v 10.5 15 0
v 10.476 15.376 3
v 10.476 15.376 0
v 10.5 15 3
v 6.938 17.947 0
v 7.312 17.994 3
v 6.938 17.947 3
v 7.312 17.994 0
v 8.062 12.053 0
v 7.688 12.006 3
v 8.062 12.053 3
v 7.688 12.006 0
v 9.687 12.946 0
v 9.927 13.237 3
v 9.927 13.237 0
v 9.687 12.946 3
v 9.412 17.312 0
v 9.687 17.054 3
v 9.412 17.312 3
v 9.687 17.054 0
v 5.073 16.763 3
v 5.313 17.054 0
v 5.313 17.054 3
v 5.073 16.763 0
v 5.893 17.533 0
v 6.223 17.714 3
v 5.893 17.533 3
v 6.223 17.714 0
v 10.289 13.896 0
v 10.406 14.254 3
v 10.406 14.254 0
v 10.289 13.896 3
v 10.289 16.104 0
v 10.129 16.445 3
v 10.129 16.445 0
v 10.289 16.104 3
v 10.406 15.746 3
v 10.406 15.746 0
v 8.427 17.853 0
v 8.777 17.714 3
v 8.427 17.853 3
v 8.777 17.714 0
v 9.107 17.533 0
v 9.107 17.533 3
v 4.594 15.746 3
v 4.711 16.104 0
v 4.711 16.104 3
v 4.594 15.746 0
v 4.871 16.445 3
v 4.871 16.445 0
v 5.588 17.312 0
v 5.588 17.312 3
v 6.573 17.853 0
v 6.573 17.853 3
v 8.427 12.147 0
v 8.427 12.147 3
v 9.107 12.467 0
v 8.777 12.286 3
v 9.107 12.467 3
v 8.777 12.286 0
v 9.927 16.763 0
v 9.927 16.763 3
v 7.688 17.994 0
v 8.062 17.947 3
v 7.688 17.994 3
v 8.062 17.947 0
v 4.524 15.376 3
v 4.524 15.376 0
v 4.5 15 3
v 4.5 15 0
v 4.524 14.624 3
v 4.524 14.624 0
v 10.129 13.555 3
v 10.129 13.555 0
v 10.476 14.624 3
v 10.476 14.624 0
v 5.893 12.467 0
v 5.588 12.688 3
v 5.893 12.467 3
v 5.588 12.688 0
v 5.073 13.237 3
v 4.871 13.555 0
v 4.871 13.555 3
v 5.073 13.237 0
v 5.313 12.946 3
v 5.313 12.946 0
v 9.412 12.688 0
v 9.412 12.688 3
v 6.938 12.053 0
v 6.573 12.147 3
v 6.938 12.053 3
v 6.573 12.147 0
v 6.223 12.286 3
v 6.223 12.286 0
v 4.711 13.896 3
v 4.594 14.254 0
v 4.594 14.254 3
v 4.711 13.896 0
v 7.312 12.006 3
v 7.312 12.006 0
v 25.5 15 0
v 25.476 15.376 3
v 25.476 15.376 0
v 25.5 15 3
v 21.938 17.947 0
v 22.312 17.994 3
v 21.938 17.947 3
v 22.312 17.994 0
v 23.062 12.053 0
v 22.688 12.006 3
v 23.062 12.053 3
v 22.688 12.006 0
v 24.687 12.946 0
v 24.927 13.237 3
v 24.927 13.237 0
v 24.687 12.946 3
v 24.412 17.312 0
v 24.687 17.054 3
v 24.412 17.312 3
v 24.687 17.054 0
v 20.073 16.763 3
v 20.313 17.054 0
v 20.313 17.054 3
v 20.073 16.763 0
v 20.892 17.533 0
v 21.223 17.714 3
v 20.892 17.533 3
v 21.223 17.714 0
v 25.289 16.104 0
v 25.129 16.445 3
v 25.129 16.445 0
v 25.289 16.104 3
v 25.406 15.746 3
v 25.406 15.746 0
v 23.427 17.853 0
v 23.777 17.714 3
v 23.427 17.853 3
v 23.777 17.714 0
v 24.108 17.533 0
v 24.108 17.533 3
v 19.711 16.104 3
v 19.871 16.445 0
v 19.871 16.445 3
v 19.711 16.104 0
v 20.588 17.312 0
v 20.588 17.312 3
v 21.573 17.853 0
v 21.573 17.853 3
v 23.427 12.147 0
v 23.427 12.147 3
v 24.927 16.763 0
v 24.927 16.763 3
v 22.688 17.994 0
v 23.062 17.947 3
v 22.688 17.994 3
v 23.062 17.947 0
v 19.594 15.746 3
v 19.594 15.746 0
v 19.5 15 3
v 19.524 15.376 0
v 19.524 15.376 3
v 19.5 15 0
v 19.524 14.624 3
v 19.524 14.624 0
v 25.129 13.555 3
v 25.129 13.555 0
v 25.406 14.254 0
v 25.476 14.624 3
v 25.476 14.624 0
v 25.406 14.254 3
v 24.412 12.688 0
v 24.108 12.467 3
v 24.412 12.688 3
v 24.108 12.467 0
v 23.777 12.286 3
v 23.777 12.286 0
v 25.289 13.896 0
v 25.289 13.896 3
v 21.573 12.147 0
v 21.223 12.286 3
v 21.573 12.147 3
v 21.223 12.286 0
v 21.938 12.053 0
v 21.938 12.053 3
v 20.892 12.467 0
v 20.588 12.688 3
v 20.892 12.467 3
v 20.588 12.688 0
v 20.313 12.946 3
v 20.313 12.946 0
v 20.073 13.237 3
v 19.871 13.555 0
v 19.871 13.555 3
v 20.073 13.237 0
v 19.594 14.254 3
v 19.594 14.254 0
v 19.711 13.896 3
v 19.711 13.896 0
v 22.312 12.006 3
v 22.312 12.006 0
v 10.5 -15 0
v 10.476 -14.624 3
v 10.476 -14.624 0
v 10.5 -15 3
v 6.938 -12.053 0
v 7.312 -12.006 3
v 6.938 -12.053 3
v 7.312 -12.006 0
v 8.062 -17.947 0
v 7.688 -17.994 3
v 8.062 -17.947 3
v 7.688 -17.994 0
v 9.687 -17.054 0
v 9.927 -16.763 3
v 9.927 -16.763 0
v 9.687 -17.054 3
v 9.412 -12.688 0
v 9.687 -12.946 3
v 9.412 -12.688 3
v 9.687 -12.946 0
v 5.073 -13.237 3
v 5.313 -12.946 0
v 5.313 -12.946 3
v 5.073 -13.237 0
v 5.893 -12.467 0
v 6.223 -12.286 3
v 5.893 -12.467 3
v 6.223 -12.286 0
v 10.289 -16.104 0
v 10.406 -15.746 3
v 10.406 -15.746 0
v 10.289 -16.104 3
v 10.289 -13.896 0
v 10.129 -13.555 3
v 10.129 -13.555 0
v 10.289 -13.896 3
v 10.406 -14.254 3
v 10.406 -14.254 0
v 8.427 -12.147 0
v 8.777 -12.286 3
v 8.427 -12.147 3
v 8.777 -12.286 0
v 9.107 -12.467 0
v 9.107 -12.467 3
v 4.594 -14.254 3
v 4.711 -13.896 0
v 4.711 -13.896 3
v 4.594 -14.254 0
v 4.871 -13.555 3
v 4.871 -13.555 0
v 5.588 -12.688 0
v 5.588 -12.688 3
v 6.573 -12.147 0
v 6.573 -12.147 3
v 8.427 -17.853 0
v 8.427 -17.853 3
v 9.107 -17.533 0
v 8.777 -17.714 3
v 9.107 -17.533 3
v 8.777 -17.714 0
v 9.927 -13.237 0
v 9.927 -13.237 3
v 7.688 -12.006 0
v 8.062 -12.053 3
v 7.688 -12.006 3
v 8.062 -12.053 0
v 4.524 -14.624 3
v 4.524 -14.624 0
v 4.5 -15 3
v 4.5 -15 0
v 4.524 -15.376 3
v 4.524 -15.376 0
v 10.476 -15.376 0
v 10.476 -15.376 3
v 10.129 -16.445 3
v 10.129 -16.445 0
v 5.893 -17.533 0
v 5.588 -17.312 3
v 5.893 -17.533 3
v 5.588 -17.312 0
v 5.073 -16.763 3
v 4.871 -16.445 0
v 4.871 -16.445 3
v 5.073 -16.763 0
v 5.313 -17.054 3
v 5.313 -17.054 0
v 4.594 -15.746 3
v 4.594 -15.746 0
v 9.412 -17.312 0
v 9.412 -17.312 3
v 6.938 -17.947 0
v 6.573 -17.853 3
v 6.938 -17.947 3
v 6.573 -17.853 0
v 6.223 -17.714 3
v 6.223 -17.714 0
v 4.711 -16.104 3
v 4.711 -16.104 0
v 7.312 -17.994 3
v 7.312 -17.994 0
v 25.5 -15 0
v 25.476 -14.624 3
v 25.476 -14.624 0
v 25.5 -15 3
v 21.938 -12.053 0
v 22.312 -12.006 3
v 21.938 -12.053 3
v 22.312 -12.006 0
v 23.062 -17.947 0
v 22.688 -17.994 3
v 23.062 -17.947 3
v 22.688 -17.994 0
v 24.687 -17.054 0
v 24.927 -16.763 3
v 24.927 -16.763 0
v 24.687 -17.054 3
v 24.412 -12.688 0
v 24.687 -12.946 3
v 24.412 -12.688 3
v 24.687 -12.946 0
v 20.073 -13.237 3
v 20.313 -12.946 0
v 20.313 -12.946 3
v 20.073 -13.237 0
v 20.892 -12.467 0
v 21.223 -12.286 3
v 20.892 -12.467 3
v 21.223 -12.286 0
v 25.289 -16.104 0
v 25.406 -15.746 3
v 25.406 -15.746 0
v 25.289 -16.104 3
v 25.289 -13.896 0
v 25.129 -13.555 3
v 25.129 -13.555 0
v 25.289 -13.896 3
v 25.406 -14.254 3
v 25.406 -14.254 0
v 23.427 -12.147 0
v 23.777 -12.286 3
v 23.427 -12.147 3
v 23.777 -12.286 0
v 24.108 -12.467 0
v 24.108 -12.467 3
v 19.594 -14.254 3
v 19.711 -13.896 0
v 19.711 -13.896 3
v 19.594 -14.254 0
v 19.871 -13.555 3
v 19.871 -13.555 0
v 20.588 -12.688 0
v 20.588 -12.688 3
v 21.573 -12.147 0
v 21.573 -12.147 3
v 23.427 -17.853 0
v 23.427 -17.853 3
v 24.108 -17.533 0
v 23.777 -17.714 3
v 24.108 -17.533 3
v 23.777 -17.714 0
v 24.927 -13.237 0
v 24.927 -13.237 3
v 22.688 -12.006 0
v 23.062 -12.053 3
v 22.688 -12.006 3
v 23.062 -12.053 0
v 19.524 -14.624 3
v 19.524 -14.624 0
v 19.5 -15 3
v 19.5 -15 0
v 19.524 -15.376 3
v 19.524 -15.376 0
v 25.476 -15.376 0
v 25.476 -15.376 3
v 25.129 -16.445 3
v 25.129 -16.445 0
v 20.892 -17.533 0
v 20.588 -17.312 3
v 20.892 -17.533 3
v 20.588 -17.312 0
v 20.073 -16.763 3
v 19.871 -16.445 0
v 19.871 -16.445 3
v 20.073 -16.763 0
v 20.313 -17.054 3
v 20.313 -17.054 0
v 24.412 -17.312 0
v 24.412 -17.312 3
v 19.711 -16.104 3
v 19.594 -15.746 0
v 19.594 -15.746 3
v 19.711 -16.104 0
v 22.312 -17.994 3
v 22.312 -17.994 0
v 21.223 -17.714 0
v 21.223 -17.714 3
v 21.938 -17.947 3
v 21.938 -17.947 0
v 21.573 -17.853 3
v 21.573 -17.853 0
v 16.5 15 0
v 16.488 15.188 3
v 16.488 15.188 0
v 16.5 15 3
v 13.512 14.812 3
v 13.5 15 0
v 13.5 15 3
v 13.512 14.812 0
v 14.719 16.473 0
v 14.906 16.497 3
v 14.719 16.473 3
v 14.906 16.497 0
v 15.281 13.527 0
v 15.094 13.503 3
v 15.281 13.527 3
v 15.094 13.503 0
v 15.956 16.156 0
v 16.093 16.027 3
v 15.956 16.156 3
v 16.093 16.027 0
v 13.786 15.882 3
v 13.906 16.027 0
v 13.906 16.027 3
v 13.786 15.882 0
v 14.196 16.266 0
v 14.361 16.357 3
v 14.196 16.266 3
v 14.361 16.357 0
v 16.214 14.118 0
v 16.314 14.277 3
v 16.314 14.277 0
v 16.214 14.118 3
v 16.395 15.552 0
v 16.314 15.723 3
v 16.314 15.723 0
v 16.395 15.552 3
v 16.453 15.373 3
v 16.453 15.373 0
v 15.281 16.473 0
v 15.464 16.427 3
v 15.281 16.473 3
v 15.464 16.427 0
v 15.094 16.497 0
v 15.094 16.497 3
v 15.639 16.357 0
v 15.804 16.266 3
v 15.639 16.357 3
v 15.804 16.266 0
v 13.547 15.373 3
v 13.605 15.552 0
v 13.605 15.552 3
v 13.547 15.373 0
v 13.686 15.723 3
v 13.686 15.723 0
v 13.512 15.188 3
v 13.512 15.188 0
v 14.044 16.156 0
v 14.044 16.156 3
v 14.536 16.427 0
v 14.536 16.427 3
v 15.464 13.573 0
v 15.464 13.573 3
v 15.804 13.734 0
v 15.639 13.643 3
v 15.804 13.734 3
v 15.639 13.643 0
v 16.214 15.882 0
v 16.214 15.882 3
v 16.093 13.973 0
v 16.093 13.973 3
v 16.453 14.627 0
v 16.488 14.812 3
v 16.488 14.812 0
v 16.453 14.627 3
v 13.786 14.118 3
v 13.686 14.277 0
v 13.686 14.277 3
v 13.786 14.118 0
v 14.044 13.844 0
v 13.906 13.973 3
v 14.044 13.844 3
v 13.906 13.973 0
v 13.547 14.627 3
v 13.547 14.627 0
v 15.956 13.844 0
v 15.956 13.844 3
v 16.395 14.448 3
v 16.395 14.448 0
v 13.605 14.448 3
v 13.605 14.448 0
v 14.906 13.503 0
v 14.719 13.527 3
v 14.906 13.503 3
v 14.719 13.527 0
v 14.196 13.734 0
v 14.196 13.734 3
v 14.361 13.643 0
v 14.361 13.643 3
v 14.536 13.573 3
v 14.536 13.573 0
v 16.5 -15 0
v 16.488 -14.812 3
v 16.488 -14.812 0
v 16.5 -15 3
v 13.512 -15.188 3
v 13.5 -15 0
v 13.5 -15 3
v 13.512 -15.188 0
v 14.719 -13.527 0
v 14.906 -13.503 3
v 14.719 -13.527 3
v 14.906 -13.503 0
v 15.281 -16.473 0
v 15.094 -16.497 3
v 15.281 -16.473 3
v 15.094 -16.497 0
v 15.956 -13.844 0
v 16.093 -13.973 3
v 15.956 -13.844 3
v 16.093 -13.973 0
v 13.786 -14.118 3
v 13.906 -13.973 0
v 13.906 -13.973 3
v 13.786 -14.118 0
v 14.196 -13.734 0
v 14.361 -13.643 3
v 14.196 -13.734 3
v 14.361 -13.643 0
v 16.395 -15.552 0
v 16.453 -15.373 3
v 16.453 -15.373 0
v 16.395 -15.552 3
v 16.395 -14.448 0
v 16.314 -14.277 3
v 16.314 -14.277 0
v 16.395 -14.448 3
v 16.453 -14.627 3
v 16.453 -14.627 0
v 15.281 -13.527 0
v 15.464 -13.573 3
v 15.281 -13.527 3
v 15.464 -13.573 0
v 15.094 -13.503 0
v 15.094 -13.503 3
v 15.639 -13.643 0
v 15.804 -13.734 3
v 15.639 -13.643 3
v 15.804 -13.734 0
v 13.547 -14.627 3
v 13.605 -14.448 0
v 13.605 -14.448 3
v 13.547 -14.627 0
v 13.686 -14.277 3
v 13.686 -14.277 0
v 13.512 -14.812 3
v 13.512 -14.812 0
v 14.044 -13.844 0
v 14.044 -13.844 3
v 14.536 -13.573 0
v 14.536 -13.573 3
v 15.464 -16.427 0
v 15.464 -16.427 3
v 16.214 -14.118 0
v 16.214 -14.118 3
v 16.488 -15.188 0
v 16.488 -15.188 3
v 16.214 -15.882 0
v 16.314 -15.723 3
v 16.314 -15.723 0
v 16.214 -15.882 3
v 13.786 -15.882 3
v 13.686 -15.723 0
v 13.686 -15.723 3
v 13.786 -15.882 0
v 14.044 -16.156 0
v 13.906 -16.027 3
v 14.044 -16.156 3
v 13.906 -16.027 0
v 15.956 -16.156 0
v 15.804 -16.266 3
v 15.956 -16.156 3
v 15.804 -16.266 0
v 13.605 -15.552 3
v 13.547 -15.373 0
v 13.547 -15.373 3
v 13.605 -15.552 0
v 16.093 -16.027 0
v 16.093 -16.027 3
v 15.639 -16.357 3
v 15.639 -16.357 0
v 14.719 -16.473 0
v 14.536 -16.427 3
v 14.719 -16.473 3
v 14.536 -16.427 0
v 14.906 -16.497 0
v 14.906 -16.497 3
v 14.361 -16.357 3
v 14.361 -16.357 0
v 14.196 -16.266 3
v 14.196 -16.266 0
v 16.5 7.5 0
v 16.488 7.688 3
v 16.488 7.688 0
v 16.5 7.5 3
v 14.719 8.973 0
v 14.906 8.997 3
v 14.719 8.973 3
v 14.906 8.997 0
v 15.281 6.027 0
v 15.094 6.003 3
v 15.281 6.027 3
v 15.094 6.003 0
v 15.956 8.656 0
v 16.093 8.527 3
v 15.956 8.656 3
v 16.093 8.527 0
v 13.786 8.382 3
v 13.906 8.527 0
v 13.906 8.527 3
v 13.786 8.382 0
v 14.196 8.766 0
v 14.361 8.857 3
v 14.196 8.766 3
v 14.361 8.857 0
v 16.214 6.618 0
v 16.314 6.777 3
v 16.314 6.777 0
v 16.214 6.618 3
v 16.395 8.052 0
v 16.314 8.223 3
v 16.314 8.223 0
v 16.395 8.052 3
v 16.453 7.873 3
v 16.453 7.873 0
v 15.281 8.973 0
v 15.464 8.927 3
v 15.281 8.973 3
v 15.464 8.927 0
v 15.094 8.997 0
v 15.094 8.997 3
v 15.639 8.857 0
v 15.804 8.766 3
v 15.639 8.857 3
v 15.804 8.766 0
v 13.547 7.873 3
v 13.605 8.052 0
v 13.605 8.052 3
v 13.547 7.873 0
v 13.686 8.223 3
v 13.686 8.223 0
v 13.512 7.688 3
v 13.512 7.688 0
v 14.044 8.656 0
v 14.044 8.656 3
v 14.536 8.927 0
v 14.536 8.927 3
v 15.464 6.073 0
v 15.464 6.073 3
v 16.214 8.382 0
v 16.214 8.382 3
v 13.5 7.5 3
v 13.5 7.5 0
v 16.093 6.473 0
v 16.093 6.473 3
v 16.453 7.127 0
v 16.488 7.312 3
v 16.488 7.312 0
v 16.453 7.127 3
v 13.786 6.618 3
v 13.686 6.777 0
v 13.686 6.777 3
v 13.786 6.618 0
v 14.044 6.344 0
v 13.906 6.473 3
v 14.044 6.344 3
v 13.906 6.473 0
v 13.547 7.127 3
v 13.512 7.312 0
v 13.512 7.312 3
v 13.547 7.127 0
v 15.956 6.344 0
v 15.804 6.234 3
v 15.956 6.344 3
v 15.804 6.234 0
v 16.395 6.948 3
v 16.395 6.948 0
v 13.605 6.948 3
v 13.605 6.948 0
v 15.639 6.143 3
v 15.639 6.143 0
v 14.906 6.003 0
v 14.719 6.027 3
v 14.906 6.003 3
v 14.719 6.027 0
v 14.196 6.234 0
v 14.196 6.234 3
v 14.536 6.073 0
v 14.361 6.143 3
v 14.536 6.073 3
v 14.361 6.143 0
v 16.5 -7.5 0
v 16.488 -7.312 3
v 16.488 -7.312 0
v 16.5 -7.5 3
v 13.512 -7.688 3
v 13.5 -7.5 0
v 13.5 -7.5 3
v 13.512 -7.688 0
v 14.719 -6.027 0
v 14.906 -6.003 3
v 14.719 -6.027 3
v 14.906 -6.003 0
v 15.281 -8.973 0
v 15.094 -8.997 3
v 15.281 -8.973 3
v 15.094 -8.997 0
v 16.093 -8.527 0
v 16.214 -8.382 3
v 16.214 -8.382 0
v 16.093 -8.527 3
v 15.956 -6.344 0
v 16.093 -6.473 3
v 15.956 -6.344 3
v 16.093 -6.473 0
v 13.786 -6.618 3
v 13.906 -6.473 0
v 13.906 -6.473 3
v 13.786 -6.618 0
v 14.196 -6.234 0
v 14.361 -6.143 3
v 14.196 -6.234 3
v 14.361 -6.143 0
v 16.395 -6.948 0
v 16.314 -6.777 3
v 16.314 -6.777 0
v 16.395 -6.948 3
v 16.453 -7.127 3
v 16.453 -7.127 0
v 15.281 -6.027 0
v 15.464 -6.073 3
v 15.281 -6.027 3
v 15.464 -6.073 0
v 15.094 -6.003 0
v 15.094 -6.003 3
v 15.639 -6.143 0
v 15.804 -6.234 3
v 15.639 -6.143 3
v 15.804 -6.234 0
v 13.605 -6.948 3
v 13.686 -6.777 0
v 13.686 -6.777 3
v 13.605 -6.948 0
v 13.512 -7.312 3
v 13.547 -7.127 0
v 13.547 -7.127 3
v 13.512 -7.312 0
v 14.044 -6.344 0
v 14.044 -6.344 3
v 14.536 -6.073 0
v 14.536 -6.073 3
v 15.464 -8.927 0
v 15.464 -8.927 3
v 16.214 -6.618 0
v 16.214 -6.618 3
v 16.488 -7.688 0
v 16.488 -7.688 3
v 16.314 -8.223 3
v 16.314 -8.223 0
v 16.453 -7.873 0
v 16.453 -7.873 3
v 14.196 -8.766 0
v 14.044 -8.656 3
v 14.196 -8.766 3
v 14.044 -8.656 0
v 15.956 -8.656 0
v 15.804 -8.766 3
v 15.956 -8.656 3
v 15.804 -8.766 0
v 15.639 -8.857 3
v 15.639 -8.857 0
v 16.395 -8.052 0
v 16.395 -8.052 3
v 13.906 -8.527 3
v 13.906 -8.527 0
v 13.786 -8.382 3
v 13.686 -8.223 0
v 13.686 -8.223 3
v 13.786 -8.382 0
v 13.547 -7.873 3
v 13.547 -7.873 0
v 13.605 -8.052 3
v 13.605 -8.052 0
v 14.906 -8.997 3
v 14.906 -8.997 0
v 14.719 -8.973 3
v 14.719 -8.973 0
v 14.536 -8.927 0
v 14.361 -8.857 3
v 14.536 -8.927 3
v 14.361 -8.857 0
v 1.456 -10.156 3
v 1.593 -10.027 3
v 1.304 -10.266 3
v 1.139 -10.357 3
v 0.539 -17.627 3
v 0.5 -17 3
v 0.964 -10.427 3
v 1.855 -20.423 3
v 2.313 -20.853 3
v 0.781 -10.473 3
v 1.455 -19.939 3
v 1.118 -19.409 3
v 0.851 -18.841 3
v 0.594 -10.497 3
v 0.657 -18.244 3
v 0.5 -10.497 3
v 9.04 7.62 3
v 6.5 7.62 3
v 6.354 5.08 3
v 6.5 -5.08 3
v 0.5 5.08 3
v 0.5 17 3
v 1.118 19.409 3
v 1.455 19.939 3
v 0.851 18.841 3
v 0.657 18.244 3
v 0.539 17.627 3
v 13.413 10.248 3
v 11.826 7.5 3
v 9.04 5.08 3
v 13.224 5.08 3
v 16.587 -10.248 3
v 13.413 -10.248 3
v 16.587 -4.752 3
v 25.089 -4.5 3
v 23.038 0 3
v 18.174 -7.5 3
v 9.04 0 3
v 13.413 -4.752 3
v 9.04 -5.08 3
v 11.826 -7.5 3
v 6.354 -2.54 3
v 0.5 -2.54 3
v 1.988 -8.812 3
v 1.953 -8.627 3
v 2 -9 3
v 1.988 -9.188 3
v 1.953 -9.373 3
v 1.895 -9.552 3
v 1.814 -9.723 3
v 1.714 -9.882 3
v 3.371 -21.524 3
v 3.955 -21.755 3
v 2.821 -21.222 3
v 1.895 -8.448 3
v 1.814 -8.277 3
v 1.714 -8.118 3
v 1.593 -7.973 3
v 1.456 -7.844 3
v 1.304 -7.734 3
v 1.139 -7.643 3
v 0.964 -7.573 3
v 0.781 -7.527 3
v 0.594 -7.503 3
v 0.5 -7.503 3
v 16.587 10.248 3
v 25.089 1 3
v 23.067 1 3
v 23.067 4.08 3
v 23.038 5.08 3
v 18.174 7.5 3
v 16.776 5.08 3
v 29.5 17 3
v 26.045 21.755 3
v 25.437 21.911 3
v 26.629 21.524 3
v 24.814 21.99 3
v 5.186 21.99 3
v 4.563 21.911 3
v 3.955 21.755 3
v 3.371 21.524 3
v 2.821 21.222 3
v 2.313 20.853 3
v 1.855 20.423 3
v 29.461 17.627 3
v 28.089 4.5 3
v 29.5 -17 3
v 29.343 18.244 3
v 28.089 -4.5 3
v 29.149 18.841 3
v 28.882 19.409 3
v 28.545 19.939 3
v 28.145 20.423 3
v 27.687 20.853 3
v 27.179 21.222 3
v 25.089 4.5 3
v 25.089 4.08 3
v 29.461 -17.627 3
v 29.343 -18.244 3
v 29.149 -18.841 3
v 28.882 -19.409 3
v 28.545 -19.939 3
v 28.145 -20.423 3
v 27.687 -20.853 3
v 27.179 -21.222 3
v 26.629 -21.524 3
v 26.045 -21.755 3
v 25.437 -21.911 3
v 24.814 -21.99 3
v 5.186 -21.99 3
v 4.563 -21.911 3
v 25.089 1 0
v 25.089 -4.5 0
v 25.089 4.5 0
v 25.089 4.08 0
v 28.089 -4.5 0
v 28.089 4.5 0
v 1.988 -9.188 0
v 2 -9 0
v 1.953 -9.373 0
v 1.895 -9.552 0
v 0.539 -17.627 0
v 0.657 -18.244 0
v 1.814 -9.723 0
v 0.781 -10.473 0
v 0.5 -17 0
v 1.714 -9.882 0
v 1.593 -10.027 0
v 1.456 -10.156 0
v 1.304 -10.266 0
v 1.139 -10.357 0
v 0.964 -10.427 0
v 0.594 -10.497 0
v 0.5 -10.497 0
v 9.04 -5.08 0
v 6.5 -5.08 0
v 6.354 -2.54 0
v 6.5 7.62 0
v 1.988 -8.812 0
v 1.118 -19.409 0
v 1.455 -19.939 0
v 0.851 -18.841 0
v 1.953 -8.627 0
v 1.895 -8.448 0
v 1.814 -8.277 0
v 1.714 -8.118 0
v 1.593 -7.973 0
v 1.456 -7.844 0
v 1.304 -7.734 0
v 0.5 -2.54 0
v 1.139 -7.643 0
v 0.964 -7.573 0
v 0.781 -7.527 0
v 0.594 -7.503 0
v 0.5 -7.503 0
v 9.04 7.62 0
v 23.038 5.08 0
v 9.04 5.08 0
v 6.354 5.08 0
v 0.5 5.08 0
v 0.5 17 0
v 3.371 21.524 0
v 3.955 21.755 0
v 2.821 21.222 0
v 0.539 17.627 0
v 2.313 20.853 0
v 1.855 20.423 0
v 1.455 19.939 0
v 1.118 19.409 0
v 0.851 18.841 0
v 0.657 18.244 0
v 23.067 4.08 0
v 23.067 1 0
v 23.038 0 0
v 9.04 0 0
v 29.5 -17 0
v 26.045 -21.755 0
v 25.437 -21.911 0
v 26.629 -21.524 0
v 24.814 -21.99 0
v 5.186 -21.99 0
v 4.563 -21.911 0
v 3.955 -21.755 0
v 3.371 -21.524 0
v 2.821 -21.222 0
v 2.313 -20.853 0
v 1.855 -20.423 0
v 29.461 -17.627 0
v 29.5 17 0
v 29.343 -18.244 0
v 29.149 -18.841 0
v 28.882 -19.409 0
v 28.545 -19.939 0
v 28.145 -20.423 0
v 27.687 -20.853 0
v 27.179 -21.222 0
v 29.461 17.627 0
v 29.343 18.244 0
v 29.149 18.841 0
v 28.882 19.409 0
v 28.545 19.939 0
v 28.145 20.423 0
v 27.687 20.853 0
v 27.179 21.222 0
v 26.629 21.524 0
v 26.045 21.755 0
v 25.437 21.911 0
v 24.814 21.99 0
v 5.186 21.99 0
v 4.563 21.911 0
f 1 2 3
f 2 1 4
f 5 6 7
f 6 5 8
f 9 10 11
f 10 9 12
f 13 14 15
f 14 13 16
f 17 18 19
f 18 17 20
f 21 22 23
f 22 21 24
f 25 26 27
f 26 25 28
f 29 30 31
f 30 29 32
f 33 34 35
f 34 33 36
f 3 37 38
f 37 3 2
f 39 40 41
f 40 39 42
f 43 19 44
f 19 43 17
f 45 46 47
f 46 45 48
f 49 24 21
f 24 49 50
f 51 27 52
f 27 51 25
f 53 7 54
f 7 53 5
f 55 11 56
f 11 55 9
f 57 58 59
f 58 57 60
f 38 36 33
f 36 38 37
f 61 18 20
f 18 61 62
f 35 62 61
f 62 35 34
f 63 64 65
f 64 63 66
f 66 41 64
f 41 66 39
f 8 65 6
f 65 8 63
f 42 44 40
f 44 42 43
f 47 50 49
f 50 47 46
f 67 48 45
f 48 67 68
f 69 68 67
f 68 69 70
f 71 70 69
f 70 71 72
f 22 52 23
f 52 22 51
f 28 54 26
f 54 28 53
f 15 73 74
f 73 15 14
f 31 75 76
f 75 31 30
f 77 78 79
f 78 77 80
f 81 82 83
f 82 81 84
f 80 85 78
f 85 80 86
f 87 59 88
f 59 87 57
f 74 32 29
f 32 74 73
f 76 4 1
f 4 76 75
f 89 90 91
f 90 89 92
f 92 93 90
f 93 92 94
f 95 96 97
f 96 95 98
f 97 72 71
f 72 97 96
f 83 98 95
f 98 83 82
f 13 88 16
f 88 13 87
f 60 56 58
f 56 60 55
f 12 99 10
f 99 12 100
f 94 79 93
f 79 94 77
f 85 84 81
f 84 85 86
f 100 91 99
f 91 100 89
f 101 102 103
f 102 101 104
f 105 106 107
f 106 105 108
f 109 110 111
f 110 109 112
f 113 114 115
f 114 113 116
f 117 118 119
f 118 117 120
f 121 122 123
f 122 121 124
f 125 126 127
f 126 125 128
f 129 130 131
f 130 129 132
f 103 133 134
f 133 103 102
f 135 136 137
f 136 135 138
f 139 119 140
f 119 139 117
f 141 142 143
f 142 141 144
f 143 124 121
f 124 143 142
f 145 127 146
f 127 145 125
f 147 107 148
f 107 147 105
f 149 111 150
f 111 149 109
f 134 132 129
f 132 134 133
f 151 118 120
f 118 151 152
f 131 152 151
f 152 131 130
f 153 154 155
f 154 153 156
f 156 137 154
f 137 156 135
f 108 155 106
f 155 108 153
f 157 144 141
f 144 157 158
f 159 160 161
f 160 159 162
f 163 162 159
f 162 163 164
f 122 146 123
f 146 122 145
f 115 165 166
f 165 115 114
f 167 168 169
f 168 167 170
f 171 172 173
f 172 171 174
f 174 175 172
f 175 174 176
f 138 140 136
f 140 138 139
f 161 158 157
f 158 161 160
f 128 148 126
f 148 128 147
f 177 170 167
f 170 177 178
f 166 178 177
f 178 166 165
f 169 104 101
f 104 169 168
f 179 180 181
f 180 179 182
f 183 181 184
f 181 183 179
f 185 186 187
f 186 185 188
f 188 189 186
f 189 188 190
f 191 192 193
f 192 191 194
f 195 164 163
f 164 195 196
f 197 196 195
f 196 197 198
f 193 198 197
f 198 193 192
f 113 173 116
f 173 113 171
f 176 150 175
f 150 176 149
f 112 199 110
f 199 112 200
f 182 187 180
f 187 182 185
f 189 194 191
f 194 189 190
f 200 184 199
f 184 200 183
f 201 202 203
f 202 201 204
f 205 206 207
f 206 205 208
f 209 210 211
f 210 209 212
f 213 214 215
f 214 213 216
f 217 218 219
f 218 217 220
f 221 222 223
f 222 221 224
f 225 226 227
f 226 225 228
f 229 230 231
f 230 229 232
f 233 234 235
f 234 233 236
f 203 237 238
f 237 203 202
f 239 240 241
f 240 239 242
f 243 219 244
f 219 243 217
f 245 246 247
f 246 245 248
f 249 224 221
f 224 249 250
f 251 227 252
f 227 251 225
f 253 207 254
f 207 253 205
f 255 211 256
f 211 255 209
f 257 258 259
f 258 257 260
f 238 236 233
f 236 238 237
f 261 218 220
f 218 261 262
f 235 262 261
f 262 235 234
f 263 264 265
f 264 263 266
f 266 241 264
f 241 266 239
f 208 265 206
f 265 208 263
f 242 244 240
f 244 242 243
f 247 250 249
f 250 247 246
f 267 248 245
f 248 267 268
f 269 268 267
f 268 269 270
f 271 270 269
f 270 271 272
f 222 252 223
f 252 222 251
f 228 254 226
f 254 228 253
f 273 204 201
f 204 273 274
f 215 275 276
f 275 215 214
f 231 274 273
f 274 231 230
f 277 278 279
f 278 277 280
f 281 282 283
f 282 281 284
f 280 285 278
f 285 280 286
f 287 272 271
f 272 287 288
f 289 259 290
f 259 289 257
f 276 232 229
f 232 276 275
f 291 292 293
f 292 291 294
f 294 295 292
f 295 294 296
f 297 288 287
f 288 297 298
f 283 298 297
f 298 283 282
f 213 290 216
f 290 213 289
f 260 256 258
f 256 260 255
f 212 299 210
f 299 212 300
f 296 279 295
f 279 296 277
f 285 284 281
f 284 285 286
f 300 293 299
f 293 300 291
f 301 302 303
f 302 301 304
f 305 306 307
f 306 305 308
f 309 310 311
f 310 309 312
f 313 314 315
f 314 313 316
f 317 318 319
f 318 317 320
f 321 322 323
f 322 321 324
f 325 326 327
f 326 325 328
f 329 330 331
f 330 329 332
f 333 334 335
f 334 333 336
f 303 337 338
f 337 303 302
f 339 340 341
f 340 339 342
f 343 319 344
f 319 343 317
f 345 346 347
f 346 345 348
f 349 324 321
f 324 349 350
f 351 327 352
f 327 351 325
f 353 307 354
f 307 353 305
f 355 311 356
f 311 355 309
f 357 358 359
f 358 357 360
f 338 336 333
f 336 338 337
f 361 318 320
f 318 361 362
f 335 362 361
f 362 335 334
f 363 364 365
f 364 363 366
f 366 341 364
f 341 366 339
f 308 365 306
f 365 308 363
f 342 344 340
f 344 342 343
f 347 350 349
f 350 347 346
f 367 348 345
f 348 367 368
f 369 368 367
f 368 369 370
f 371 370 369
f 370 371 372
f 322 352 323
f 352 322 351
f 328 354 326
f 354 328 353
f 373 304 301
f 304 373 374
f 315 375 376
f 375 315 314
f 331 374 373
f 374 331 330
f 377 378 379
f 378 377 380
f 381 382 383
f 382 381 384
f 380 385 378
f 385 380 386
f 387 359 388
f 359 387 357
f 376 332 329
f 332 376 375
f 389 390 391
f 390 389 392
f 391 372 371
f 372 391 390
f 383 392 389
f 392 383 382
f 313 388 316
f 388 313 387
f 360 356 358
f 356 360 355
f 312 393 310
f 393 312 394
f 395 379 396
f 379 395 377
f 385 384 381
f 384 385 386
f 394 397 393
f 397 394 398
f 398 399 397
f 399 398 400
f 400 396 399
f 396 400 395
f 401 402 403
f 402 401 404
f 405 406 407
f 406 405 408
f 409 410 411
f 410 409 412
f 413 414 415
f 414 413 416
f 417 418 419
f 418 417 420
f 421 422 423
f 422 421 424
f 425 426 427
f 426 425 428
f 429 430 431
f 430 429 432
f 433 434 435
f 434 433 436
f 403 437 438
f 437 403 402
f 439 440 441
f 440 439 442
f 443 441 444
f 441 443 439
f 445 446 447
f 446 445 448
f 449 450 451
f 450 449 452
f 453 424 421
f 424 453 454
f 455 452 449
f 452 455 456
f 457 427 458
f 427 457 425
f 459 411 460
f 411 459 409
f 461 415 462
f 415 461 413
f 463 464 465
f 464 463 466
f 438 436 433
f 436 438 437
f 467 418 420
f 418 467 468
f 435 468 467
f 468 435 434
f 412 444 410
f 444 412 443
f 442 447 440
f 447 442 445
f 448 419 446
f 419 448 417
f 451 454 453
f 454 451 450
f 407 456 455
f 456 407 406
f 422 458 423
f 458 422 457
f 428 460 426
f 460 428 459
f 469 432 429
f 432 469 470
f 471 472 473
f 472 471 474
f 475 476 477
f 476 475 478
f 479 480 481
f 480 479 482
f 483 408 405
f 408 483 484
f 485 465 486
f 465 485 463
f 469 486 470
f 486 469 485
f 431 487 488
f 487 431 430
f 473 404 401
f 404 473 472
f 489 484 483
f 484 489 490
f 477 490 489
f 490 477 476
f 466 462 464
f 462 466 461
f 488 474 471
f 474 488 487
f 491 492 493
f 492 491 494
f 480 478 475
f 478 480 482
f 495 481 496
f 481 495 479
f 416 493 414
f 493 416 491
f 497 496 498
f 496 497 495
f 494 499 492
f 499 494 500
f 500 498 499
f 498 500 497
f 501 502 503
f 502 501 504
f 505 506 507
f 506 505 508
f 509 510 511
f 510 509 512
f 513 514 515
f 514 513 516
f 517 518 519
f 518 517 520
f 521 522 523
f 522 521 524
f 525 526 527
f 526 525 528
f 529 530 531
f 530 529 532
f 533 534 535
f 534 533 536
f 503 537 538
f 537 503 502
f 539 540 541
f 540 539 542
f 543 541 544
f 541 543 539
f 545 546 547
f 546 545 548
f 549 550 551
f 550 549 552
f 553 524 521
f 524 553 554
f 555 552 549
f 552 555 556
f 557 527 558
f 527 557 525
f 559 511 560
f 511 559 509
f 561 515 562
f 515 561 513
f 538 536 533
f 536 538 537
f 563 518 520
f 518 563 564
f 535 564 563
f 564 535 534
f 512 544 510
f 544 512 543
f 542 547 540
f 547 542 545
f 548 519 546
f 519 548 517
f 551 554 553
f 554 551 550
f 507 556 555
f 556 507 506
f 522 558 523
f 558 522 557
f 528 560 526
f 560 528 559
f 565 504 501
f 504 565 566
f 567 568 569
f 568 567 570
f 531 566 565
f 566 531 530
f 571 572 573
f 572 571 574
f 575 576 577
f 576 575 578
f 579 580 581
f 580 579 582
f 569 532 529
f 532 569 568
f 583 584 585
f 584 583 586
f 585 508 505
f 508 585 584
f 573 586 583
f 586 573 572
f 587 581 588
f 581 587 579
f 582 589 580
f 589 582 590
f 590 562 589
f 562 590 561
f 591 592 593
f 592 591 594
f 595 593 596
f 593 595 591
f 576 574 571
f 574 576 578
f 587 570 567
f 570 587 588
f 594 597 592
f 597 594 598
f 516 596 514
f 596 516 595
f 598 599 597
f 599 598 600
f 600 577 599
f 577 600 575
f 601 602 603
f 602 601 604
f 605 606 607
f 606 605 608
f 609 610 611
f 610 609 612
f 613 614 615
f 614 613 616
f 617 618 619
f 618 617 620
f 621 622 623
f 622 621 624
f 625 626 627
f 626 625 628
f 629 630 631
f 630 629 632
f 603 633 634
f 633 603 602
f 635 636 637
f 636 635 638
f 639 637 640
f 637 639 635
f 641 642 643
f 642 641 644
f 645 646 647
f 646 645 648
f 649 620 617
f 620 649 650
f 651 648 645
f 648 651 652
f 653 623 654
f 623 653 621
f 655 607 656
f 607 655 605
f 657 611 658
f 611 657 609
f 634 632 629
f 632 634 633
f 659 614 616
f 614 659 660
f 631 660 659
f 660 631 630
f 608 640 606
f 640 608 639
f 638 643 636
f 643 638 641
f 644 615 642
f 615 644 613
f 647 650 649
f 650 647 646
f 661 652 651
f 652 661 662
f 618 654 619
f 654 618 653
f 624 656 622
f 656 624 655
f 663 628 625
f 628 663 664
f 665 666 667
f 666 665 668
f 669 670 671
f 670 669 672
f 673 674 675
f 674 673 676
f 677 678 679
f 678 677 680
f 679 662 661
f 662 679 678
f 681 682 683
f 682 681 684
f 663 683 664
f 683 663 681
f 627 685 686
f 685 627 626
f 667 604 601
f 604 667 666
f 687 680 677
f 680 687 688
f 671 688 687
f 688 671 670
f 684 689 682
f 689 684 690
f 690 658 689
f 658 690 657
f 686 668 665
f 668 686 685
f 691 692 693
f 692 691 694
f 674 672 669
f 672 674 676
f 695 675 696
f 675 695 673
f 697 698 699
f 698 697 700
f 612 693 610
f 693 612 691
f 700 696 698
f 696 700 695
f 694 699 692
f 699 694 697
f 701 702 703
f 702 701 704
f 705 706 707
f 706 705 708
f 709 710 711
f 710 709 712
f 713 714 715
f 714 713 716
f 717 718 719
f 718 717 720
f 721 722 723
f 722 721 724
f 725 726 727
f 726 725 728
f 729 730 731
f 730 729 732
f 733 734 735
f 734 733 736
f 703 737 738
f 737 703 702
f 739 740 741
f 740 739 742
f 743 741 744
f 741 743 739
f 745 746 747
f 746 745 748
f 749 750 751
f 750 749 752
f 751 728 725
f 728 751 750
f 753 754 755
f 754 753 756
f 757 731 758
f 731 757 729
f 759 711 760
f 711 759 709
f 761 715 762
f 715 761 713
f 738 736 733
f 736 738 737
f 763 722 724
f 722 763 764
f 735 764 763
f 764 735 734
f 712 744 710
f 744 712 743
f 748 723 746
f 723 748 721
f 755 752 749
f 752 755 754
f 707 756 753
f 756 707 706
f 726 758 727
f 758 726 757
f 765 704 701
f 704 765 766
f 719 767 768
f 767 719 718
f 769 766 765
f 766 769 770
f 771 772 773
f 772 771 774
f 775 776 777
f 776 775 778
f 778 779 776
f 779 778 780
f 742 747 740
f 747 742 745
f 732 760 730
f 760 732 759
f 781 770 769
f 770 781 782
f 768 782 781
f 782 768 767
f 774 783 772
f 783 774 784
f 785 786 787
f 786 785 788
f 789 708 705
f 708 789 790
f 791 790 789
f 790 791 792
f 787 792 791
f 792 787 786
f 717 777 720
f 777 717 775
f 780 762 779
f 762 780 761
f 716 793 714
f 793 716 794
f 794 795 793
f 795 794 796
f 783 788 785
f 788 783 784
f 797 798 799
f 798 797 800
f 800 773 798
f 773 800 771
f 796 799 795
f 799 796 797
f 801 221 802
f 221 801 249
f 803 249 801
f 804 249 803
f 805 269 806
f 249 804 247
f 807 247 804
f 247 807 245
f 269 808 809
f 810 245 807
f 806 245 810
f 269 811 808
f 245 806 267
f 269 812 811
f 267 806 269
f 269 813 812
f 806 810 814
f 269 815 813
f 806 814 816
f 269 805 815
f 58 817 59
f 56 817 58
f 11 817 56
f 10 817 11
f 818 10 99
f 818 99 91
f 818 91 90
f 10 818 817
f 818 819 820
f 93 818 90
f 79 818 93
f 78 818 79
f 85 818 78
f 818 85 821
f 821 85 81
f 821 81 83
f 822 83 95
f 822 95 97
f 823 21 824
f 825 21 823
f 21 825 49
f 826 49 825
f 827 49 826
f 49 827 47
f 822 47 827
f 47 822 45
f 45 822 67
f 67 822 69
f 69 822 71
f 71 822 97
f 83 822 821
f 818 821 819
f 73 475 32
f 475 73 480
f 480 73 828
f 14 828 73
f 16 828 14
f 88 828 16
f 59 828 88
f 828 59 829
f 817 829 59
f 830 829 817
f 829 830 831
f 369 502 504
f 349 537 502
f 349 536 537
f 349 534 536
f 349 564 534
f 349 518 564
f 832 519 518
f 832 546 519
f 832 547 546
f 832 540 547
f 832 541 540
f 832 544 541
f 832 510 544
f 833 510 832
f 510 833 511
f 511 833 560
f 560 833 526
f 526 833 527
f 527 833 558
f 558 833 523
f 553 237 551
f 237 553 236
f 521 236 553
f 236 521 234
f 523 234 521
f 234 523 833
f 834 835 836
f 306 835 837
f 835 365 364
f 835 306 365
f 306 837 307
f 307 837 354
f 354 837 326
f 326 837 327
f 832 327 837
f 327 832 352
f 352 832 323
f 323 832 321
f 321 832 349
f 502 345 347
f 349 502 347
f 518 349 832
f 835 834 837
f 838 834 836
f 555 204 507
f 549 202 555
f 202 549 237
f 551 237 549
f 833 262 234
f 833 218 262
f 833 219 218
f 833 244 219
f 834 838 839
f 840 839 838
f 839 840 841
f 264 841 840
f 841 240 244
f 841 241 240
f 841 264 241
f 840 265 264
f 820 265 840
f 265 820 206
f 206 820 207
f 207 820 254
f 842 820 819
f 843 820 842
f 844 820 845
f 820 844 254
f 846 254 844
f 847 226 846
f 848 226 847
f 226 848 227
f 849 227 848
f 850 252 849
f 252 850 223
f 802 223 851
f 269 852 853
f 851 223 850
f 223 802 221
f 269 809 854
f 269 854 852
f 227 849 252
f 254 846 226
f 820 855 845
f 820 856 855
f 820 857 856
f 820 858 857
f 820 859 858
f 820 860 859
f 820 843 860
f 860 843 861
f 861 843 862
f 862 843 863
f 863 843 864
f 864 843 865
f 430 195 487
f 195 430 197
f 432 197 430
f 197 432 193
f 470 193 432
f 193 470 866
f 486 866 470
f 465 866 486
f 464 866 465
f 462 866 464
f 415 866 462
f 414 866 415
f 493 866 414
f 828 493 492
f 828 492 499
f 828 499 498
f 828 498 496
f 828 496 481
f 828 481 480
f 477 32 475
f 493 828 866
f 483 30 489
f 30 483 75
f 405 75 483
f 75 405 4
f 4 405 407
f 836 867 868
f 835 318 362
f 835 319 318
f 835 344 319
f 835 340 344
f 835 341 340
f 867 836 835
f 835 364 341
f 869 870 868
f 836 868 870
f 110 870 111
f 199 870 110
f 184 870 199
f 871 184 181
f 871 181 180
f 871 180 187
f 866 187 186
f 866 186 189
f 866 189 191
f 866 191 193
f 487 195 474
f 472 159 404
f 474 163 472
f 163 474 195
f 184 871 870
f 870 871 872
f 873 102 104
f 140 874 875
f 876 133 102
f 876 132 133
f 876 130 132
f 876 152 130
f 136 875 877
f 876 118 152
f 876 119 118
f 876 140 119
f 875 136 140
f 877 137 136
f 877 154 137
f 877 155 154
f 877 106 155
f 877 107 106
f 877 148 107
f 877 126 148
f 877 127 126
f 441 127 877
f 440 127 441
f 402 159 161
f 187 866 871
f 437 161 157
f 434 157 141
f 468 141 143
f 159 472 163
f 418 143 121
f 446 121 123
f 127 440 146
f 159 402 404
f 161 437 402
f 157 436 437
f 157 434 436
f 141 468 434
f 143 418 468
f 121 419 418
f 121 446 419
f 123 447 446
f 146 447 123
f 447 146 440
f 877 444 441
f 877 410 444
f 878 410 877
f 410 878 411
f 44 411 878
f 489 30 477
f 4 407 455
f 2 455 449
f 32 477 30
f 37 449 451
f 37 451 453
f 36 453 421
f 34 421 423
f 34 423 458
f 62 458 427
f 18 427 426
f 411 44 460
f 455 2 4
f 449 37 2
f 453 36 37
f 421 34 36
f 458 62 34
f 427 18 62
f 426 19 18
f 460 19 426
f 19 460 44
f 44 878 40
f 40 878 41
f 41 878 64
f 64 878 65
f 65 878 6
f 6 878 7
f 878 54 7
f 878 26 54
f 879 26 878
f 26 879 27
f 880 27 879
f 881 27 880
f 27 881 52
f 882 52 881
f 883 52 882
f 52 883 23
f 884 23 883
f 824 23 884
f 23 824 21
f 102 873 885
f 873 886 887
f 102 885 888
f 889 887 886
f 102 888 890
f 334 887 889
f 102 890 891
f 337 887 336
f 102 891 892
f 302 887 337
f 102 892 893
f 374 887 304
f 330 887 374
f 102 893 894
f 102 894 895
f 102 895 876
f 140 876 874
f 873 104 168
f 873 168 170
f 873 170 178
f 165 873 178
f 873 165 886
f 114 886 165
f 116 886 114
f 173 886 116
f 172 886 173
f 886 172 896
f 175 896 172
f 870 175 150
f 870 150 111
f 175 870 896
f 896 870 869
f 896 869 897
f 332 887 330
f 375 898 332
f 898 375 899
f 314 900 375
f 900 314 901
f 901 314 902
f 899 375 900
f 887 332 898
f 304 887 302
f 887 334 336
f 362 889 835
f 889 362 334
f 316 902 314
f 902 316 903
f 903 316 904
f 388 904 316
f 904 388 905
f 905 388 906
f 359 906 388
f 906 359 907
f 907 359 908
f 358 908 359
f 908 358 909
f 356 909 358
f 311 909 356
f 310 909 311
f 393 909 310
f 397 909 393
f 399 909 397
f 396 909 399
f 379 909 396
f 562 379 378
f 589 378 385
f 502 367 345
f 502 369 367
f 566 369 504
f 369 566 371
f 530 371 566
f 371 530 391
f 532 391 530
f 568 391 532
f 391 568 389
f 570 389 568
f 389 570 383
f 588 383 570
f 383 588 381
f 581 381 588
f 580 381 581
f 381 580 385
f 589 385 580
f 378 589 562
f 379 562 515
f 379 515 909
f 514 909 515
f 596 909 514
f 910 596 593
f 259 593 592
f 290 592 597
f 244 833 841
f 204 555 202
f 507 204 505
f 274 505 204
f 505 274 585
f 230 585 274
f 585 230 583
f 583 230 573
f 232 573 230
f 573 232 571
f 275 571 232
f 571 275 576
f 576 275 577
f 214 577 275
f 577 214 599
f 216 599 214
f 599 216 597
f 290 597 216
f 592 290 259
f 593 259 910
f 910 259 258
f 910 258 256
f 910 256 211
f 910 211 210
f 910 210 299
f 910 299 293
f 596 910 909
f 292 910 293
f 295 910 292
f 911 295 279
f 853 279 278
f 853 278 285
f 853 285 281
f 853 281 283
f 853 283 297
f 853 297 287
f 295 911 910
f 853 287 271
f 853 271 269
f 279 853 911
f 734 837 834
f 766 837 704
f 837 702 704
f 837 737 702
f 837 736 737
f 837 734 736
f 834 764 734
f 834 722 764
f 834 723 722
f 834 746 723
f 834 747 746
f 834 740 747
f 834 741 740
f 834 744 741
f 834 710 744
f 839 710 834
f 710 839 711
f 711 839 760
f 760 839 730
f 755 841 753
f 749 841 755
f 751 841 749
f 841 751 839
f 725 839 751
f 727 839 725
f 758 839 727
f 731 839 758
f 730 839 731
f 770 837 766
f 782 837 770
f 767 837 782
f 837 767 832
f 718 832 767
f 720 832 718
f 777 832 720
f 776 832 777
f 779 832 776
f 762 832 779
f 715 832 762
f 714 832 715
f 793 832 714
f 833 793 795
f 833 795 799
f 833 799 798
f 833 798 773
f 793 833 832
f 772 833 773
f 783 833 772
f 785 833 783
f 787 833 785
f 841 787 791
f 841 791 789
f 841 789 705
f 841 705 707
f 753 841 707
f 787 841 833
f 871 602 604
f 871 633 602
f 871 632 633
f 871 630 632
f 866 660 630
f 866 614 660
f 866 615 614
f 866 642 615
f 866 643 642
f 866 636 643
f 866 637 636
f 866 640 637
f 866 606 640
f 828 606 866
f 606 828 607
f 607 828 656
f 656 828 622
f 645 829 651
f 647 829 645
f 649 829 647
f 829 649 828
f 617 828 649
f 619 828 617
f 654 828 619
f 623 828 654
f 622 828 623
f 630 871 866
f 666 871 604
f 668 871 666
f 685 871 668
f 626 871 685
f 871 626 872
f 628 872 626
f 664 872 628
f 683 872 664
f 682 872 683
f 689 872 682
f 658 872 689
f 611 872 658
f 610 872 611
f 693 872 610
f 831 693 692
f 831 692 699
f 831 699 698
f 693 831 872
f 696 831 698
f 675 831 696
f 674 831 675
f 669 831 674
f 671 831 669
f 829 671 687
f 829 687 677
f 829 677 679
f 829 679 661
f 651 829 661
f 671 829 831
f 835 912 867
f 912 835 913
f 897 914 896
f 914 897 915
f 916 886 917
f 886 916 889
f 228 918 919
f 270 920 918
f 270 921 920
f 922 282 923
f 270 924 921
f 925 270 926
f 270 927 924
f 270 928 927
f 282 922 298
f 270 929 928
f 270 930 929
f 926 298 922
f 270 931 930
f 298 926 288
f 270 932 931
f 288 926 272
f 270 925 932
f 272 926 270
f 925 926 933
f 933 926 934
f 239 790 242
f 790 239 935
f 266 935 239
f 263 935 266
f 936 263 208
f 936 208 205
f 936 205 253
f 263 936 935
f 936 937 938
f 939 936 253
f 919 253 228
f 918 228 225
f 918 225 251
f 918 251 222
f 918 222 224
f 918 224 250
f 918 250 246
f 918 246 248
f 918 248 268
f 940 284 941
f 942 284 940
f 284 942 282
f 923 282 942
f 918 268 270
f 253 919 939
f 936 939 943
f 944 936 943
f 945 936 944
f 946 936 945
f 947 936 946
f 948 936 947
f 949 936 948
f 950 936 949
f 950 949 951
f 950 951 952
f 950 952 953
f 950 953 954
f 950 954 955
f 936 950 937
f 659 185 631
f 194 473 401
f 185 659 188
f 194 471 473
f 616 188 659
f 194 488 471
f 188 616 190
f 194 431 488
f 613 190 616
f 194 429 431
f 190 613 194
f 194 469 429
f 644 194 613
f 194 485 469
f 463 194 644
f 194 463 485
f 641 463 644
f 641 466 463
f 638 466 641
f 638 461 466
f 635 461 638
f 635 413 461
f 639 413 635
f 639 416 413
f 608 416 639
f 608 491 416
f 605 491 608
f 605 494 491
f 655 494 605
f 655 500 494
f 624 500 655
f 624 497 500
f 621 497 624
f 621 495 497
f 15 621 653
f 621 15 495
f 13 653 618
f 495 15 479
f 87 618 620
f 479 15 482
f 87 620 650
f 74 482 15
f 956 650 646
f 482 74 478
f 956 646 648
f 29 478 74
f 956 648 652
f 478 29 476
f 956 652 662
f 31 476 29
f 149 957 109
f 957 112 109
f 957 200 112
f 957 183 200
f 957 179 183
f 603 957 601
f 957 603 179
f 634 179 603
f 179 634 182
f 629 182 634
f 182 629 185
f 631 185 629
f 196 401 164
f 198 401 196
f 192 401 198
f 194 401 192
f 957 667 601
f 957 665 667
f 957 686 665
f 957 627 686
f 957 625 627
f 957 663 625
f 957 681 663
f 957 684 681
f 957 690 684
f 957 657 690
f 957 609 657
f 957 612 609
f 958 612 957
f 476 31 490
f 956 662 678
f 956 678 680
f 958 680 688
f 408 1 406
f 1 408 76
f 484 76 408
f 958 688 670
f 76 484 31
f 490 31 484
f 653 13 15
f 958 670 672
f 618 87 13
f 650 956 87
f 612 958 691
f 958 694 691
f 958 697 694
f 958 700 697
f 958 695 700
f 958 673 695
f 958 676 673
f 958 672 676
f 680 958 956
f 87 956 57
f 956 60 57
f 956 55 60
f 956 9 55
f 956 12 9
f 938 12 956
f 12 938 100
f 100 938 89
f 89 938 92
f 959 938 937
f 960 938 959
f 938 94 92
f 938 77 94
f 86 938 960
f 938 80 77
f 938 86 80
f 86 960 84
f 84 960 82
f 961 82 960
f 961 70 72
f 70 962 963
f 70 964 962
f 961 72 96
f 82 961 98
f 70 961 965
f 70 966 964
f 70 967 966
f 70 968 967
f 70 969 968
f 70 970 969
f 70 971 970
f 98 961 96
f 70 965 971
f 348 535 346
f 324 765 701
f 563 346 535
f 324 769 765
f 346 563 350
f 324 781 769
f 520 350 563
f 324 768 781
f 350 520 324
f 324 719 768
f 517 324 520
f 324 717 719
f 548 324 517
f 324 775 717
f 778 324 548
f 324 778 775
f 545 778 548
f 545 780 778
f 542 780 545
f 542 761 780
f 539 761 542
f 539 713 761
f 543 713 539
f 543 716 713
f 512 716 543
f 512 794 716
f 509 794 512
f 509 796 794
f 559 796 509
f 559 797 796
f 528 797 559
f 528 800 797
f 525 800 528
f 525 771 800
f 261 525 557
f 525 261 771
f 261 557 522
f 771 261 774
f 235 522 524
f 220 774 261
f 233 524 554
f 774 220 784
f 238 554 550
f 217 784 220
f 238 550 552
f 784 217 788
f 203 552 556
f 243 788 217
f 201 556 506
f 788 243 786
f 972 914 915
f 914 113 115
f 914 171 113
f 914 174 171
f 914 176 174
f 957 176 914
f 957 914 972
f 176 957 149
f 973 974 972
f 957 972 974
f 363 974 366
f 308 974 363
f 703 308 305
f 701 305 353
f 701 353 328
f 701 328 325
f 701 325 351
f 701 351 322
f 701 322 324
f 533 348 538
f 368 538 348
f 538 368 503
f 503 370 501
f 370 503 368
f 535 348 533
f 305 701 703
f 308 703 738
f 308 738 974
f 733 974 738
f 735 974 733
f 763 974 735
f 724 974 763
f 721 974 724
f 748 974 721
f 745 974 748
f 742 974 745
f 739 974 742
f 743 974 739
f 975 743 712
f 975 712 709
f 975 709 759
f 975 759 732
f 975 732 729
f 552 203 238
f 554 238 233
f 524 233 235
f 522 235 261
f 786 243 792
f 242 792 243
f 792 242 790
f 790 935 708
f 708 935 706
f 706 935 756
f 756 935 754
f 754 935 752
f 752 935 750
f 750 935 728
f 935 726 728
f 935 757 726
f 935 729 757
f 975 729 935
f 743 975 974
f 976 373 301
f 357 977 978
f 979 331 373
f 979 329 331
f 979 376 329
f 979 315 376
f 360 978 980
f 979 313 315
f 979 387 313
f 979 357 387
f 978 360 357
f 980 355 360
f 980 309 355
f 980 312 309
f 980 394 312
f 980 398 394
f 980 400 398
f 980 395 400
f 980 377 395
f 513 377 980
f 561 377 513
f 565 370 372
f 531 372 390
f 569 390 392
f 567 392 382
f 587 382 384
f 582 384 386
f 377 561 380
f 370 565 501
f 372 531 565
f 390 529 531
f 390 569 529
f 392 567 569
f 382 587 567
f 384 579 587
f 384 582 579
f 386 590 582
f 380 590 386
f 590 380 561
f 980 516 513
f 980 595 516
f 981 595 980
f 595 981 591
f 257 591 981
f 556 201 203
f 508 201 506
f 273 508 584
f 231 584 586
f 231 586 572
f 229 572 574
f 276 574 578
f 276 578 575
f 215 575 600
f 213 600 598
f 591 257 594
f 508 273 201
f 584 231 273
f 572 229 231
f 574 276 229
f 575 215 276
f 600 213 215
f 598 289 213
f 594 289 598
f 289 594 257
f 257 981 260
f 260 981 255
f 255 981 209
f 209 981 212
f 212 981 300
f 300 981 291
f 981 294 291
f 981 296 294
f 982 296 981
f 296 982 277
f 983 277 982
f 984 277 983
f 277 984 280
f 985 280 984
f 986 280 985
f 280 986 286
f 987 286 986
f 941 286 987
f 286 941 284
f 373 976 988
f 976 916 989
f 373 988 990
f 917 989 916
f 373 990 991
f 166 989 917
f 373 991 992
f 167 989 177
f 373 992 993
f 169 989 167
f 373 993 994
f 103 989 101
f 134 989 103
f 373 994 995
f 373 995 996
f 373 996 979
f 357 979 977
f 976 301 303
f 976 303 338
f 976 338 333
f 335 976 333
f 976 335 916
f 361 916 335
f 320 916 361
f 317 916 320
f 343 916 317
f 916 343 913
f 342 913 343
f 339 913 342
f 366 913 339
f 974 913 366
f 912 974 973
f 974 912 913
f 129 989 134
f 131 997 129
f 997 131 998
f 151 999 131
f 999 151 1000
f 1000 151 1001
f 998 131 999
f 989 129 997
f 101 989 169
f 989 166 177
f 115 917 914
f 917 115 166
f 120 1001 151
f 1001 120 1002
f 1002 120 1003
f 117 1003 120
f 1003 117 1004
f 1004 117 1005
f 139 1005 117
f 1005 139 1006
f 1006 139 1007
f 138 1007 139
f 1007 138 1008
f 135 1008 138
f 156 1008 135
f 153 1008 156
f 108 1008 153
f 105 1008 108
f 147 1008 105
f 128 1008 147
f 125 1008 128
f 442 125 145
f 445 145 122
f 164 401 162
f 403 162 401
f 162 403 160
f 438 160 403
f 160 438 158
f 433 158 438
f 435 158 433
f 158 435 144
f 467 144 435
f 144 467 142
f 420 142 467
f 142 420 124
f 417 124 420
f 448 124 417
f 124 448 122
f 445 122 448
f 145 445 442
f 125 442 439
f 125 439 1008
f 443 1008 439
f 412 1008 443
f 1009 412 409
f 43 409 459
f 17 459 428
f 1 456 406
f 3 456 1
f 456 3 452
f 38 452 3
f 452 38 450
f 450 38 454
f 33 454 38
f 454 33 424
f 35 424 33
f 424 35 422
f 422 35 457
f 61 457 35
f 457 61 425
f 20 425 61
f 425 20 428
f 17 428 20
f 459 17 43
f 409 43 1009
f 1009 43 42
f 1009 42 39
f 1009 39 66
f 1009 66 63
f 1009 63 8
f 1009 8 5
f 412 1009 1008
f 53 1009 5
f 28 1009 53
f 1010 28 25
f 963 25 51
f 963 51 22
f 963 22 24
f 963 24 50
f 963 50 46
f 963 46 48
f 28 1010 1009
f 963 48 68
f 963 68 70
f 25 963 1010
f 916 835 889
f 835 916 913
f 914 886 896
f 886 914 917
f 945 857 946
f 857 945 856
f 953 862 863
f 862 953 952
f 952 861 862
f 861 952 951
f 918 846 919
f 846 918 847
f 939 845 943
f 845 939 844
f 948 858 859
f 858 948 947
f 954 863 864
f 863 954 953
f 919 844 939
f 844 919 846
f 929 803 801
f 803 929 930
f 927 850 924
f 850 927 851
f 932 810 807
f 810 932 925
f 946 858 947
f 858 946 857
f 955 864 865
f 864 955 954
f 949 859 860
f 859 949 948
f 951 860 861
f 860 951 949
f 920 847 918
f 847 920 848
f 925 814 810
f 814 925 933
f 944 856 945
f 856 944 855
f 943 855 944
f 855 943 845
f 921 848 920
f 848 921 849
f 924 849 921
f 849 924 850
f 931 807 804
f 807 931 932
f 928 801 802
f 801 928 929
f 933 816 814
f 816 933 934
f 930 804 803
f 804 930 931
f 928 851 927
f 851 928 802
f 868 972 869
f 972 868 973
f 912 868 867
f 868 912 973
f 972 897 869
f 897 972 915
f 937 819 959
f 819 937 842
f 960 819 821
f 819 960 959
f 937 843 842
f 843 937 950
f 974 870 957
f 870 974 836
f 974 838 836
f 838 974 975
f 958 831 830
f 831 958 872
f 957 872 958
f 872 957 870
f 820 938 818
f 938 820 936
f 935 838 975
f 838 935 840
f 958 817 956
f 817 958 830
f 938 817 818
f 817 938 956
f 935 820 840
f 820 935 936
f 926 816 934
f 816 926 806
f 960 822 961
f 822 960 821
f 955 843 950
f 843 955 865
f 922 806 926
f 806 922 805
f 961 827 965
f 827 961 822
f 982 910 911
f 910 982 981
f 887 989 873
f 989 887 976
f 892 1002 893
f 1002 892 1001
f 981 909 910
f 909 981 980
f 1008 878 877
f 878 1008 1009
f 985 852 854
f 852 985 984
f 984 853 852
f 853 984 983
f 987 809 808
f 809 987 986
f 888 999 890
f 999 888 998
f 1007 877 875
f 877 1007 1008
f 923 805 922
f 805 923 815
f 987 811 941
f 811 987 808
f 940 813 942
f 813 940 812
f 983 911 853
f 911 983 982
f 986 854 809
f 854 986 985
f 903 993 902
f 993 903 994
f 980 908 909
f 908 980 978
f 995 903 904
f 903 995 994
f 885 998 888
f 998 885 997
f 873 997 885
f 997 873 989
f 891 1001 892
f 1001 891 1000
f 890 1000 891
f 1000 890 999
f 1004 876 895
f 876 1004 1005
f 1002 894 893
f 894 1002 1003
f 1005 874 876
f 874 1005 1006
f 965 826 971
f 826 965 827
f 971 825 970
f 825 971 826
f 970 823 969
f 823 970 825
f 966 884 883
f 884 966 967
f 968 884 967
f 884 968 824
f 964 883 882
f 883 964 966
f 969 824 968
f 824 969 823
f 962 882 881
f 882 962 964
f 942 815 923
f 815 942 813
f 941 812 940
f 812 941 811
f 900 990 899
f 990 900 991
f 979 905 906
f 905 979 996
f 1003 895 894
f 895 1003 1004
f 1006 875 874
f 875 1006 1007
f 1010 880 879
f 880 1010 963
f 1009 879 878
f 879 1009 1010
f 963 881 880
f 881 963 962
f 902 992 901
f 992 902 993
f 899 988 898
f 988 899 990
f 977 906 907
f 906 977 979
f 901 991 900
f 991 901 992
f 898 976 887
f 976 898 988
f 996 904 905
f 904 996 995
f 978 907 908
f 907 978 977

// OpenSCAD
$fn = 50;


difference() {
	union() {
		translate(v = [15.0000000000, 0, 0]) {
			rotate(a = [0, 0, 0]) {
				hull() {
					translate(v = [-9.5000000000, 17.0000000000, 0]) {
						rotate(a = [0, 0, 0]) {
							translate(v = [0, 0, 0]) {
								rotate(a = [0, 0, 0]) {
									cylinder(h = 3, r = 5);
								}
							}
						}
					}
					translate(v = [9.5000000000, 17.0000000000, 0]) {
						rotate(a = [0, 0, 0]) {
							translate(v = [0, 0, 0]) {
								rotate(a = [0, 0, 0]) {
									cylinder(h = 3, r = 5);
								}
							}
						}
					}
					translate(v = [-9.5000000000, -17.0000000000, 0]) {
						rotate(a = [0, 0, 0]) {
							translate(v = [0, 0, 0]) {
								rotate(a = [0, 0, 0]) {
									cylinder(h = 3, r = 5);
								}
							}
						}
					}
					translate(v = [9.5000000000, -17.0000000000, 0]) {
						rotate(a = [0, 0, 0]) {
							translate(v = [0, 0, 0]) {
								rotate(a = [0, 0, 0]) {
									cylinder(h = 3, r = 5);
								}
							}
						}
					}
				}
			}
		}
	}
	union() {
		translate(v = [7.5000000000, 15.0000000000, -125.0000000000]) {
			rotate(a = [0, 0, 0]) {
				cylinder(h = 250, r = 3.0000000000);
			}
		}
		translate(v = [22.5000000000, 15.0000000000, -125.0000000000]) {
			rotate(a = [0, 0, 0]) {
				cylinder(h = 250, r = 3.0000000000);
			}
		}
		translate(v = [7.5000000000, -15.0000000000, -125.0000000000]) {
			rotate(a = [0, 0, 0]) {
				cylinder(h = 250, r = 3.0000000000);
			}
		}
		translate(v = [22.5000000000, -15.0000000000, -125.0000000000]) {
			rotate(a = [0, 0, 0]) {
				cylinder(h = 250, r = 3.0000000000);
			}
		}
		translate(v = [7.5000000000, 15.0000000000, -125.0000000000]) {
			rotate(a = [0, 0, 0]) {
				cylinder(h = 250, r = 1.5000000000);
			}
		}
		translate(v = [15.0000000000, 15.0000000000, -125.0000000000]) {
			rotate(a = [0, 0, 0]) {
				cylinder(h = 250, r = 1.5000000000);
			}
		}
		translate(v = [22.5000000000, 15.0000000000, -125.0000000000]) {
			rotate(a = [0, 0, 0]) {
				cylinder(h = 250, r = 1.5000000000);
			}
		}
		translate(v = [7.5000000000, -15.0000000000, -125.0000000000]) {
			rotate(a = [0, 0, 0]) {
				cylinder(h = 250, r = 1.5000000000);
			}
		}
		translate(v = [15.0000000000, -15.0000000000, -125.0000000000]) {
			rotate(a = [0, 0, 0]) {
				cylinder(h = 250, r = 1.5000000000);
			}
		}
		translate(v = [22.5000000000, -15.0000000000, -125.0000000000]) {
			rotate(a = [0, 0, 0]) {
				cylinder(h = 250, r = 1.5000000000);
			}
		}
		translate(v = [15, 7.5000000000, -125.0000000000]) {
			rotate(a = [0, 0, 0]) {
				cylinder(h = 250, r = 1.5000000000);
			}
		}
		translate(v = [15, -7.5000000000, -125.0000000000]) {
			rotate(a = [0, 0, 0]) {
				cylinder(h = 250, r = 1.5000000000);
			}
		}
		translate(v = [15, 7.5000000000, 3]) {
			rotate(a = [0, 0, 0]) {
				translate(v = [0, 0, 0]) {
					rotate(a = [0, 0, 0]) {
						linear_extrude(height = 2.5000000000) {
							polygon(points = [[3.1735000000, 0.0000000000], [1.5867500000, 2.7483316189], [-1.5867500000, 2.7483316189], [-3.1735000000, 0.0000000000], [-1.5867500000, -2.7483316189], [1.5867500000, -2.7483316189]]);
						}
					}
				}
			}
		}
		translate(v = [15, -7.5000000000, 3]) {
			rotate(a = [0, 0, 0]) {
				translate(v = [0, 0, 0]) {
					rotate(a = [0, 0, 0]) {
						linear_extrude(height = 2.5000000000) {
							polygon(points = [[3.1735000000, 0.0000000000], [1.5867500000, 2.7483316189], [-1.5867500000, 2.7483316189], [-3.1735000000, 0.0000000000], [-1.5867500000, -2.7483316189], [1.5867500000, -2.7483316189]]);
						}
					}
				}
			}
		}
		translate(v = [25.0890000000, -4.5000000000, 0]) {
			rotate(a = [0, 0, 0]) {
				cube(size = [3, 9, 10]);
			}
		}
		translate(v = [0.5000000000, -9, 0.0000000000]) {
			rotate(a = [0, 0, 0]) {
				cylinder(h = 3, r = 1.5000000000);
			}
		}
		translate(v = [23.0670000000, -0.2410000000, 0]) {
			rotate(a = [0, 0, 0]) {
				cube(size = [5, 3.0800000000, 3]);
			}
		}
		translate(v = [0.3540000000, -3.8100000000, 0]) {
			rotate(a = [0, 0, 0]) {
				cube(size = [6, 7.6200000000, 3]);
			}
		}
		translate(v = [9.0380000000, -1.2700000000, 0]) {
			rotate(a = [0, 0, 0]) {
				cube(size = [14, 5.0800000000, 3]);
			}
		}
		translate(v = [6.5000000000, -6.3500000000, 0]) {
			rotate(a = [0, 0, 0]) {
				cube(size = [2.5400000000, 12.7000000000, 3]);
			}
		}
	}
}
